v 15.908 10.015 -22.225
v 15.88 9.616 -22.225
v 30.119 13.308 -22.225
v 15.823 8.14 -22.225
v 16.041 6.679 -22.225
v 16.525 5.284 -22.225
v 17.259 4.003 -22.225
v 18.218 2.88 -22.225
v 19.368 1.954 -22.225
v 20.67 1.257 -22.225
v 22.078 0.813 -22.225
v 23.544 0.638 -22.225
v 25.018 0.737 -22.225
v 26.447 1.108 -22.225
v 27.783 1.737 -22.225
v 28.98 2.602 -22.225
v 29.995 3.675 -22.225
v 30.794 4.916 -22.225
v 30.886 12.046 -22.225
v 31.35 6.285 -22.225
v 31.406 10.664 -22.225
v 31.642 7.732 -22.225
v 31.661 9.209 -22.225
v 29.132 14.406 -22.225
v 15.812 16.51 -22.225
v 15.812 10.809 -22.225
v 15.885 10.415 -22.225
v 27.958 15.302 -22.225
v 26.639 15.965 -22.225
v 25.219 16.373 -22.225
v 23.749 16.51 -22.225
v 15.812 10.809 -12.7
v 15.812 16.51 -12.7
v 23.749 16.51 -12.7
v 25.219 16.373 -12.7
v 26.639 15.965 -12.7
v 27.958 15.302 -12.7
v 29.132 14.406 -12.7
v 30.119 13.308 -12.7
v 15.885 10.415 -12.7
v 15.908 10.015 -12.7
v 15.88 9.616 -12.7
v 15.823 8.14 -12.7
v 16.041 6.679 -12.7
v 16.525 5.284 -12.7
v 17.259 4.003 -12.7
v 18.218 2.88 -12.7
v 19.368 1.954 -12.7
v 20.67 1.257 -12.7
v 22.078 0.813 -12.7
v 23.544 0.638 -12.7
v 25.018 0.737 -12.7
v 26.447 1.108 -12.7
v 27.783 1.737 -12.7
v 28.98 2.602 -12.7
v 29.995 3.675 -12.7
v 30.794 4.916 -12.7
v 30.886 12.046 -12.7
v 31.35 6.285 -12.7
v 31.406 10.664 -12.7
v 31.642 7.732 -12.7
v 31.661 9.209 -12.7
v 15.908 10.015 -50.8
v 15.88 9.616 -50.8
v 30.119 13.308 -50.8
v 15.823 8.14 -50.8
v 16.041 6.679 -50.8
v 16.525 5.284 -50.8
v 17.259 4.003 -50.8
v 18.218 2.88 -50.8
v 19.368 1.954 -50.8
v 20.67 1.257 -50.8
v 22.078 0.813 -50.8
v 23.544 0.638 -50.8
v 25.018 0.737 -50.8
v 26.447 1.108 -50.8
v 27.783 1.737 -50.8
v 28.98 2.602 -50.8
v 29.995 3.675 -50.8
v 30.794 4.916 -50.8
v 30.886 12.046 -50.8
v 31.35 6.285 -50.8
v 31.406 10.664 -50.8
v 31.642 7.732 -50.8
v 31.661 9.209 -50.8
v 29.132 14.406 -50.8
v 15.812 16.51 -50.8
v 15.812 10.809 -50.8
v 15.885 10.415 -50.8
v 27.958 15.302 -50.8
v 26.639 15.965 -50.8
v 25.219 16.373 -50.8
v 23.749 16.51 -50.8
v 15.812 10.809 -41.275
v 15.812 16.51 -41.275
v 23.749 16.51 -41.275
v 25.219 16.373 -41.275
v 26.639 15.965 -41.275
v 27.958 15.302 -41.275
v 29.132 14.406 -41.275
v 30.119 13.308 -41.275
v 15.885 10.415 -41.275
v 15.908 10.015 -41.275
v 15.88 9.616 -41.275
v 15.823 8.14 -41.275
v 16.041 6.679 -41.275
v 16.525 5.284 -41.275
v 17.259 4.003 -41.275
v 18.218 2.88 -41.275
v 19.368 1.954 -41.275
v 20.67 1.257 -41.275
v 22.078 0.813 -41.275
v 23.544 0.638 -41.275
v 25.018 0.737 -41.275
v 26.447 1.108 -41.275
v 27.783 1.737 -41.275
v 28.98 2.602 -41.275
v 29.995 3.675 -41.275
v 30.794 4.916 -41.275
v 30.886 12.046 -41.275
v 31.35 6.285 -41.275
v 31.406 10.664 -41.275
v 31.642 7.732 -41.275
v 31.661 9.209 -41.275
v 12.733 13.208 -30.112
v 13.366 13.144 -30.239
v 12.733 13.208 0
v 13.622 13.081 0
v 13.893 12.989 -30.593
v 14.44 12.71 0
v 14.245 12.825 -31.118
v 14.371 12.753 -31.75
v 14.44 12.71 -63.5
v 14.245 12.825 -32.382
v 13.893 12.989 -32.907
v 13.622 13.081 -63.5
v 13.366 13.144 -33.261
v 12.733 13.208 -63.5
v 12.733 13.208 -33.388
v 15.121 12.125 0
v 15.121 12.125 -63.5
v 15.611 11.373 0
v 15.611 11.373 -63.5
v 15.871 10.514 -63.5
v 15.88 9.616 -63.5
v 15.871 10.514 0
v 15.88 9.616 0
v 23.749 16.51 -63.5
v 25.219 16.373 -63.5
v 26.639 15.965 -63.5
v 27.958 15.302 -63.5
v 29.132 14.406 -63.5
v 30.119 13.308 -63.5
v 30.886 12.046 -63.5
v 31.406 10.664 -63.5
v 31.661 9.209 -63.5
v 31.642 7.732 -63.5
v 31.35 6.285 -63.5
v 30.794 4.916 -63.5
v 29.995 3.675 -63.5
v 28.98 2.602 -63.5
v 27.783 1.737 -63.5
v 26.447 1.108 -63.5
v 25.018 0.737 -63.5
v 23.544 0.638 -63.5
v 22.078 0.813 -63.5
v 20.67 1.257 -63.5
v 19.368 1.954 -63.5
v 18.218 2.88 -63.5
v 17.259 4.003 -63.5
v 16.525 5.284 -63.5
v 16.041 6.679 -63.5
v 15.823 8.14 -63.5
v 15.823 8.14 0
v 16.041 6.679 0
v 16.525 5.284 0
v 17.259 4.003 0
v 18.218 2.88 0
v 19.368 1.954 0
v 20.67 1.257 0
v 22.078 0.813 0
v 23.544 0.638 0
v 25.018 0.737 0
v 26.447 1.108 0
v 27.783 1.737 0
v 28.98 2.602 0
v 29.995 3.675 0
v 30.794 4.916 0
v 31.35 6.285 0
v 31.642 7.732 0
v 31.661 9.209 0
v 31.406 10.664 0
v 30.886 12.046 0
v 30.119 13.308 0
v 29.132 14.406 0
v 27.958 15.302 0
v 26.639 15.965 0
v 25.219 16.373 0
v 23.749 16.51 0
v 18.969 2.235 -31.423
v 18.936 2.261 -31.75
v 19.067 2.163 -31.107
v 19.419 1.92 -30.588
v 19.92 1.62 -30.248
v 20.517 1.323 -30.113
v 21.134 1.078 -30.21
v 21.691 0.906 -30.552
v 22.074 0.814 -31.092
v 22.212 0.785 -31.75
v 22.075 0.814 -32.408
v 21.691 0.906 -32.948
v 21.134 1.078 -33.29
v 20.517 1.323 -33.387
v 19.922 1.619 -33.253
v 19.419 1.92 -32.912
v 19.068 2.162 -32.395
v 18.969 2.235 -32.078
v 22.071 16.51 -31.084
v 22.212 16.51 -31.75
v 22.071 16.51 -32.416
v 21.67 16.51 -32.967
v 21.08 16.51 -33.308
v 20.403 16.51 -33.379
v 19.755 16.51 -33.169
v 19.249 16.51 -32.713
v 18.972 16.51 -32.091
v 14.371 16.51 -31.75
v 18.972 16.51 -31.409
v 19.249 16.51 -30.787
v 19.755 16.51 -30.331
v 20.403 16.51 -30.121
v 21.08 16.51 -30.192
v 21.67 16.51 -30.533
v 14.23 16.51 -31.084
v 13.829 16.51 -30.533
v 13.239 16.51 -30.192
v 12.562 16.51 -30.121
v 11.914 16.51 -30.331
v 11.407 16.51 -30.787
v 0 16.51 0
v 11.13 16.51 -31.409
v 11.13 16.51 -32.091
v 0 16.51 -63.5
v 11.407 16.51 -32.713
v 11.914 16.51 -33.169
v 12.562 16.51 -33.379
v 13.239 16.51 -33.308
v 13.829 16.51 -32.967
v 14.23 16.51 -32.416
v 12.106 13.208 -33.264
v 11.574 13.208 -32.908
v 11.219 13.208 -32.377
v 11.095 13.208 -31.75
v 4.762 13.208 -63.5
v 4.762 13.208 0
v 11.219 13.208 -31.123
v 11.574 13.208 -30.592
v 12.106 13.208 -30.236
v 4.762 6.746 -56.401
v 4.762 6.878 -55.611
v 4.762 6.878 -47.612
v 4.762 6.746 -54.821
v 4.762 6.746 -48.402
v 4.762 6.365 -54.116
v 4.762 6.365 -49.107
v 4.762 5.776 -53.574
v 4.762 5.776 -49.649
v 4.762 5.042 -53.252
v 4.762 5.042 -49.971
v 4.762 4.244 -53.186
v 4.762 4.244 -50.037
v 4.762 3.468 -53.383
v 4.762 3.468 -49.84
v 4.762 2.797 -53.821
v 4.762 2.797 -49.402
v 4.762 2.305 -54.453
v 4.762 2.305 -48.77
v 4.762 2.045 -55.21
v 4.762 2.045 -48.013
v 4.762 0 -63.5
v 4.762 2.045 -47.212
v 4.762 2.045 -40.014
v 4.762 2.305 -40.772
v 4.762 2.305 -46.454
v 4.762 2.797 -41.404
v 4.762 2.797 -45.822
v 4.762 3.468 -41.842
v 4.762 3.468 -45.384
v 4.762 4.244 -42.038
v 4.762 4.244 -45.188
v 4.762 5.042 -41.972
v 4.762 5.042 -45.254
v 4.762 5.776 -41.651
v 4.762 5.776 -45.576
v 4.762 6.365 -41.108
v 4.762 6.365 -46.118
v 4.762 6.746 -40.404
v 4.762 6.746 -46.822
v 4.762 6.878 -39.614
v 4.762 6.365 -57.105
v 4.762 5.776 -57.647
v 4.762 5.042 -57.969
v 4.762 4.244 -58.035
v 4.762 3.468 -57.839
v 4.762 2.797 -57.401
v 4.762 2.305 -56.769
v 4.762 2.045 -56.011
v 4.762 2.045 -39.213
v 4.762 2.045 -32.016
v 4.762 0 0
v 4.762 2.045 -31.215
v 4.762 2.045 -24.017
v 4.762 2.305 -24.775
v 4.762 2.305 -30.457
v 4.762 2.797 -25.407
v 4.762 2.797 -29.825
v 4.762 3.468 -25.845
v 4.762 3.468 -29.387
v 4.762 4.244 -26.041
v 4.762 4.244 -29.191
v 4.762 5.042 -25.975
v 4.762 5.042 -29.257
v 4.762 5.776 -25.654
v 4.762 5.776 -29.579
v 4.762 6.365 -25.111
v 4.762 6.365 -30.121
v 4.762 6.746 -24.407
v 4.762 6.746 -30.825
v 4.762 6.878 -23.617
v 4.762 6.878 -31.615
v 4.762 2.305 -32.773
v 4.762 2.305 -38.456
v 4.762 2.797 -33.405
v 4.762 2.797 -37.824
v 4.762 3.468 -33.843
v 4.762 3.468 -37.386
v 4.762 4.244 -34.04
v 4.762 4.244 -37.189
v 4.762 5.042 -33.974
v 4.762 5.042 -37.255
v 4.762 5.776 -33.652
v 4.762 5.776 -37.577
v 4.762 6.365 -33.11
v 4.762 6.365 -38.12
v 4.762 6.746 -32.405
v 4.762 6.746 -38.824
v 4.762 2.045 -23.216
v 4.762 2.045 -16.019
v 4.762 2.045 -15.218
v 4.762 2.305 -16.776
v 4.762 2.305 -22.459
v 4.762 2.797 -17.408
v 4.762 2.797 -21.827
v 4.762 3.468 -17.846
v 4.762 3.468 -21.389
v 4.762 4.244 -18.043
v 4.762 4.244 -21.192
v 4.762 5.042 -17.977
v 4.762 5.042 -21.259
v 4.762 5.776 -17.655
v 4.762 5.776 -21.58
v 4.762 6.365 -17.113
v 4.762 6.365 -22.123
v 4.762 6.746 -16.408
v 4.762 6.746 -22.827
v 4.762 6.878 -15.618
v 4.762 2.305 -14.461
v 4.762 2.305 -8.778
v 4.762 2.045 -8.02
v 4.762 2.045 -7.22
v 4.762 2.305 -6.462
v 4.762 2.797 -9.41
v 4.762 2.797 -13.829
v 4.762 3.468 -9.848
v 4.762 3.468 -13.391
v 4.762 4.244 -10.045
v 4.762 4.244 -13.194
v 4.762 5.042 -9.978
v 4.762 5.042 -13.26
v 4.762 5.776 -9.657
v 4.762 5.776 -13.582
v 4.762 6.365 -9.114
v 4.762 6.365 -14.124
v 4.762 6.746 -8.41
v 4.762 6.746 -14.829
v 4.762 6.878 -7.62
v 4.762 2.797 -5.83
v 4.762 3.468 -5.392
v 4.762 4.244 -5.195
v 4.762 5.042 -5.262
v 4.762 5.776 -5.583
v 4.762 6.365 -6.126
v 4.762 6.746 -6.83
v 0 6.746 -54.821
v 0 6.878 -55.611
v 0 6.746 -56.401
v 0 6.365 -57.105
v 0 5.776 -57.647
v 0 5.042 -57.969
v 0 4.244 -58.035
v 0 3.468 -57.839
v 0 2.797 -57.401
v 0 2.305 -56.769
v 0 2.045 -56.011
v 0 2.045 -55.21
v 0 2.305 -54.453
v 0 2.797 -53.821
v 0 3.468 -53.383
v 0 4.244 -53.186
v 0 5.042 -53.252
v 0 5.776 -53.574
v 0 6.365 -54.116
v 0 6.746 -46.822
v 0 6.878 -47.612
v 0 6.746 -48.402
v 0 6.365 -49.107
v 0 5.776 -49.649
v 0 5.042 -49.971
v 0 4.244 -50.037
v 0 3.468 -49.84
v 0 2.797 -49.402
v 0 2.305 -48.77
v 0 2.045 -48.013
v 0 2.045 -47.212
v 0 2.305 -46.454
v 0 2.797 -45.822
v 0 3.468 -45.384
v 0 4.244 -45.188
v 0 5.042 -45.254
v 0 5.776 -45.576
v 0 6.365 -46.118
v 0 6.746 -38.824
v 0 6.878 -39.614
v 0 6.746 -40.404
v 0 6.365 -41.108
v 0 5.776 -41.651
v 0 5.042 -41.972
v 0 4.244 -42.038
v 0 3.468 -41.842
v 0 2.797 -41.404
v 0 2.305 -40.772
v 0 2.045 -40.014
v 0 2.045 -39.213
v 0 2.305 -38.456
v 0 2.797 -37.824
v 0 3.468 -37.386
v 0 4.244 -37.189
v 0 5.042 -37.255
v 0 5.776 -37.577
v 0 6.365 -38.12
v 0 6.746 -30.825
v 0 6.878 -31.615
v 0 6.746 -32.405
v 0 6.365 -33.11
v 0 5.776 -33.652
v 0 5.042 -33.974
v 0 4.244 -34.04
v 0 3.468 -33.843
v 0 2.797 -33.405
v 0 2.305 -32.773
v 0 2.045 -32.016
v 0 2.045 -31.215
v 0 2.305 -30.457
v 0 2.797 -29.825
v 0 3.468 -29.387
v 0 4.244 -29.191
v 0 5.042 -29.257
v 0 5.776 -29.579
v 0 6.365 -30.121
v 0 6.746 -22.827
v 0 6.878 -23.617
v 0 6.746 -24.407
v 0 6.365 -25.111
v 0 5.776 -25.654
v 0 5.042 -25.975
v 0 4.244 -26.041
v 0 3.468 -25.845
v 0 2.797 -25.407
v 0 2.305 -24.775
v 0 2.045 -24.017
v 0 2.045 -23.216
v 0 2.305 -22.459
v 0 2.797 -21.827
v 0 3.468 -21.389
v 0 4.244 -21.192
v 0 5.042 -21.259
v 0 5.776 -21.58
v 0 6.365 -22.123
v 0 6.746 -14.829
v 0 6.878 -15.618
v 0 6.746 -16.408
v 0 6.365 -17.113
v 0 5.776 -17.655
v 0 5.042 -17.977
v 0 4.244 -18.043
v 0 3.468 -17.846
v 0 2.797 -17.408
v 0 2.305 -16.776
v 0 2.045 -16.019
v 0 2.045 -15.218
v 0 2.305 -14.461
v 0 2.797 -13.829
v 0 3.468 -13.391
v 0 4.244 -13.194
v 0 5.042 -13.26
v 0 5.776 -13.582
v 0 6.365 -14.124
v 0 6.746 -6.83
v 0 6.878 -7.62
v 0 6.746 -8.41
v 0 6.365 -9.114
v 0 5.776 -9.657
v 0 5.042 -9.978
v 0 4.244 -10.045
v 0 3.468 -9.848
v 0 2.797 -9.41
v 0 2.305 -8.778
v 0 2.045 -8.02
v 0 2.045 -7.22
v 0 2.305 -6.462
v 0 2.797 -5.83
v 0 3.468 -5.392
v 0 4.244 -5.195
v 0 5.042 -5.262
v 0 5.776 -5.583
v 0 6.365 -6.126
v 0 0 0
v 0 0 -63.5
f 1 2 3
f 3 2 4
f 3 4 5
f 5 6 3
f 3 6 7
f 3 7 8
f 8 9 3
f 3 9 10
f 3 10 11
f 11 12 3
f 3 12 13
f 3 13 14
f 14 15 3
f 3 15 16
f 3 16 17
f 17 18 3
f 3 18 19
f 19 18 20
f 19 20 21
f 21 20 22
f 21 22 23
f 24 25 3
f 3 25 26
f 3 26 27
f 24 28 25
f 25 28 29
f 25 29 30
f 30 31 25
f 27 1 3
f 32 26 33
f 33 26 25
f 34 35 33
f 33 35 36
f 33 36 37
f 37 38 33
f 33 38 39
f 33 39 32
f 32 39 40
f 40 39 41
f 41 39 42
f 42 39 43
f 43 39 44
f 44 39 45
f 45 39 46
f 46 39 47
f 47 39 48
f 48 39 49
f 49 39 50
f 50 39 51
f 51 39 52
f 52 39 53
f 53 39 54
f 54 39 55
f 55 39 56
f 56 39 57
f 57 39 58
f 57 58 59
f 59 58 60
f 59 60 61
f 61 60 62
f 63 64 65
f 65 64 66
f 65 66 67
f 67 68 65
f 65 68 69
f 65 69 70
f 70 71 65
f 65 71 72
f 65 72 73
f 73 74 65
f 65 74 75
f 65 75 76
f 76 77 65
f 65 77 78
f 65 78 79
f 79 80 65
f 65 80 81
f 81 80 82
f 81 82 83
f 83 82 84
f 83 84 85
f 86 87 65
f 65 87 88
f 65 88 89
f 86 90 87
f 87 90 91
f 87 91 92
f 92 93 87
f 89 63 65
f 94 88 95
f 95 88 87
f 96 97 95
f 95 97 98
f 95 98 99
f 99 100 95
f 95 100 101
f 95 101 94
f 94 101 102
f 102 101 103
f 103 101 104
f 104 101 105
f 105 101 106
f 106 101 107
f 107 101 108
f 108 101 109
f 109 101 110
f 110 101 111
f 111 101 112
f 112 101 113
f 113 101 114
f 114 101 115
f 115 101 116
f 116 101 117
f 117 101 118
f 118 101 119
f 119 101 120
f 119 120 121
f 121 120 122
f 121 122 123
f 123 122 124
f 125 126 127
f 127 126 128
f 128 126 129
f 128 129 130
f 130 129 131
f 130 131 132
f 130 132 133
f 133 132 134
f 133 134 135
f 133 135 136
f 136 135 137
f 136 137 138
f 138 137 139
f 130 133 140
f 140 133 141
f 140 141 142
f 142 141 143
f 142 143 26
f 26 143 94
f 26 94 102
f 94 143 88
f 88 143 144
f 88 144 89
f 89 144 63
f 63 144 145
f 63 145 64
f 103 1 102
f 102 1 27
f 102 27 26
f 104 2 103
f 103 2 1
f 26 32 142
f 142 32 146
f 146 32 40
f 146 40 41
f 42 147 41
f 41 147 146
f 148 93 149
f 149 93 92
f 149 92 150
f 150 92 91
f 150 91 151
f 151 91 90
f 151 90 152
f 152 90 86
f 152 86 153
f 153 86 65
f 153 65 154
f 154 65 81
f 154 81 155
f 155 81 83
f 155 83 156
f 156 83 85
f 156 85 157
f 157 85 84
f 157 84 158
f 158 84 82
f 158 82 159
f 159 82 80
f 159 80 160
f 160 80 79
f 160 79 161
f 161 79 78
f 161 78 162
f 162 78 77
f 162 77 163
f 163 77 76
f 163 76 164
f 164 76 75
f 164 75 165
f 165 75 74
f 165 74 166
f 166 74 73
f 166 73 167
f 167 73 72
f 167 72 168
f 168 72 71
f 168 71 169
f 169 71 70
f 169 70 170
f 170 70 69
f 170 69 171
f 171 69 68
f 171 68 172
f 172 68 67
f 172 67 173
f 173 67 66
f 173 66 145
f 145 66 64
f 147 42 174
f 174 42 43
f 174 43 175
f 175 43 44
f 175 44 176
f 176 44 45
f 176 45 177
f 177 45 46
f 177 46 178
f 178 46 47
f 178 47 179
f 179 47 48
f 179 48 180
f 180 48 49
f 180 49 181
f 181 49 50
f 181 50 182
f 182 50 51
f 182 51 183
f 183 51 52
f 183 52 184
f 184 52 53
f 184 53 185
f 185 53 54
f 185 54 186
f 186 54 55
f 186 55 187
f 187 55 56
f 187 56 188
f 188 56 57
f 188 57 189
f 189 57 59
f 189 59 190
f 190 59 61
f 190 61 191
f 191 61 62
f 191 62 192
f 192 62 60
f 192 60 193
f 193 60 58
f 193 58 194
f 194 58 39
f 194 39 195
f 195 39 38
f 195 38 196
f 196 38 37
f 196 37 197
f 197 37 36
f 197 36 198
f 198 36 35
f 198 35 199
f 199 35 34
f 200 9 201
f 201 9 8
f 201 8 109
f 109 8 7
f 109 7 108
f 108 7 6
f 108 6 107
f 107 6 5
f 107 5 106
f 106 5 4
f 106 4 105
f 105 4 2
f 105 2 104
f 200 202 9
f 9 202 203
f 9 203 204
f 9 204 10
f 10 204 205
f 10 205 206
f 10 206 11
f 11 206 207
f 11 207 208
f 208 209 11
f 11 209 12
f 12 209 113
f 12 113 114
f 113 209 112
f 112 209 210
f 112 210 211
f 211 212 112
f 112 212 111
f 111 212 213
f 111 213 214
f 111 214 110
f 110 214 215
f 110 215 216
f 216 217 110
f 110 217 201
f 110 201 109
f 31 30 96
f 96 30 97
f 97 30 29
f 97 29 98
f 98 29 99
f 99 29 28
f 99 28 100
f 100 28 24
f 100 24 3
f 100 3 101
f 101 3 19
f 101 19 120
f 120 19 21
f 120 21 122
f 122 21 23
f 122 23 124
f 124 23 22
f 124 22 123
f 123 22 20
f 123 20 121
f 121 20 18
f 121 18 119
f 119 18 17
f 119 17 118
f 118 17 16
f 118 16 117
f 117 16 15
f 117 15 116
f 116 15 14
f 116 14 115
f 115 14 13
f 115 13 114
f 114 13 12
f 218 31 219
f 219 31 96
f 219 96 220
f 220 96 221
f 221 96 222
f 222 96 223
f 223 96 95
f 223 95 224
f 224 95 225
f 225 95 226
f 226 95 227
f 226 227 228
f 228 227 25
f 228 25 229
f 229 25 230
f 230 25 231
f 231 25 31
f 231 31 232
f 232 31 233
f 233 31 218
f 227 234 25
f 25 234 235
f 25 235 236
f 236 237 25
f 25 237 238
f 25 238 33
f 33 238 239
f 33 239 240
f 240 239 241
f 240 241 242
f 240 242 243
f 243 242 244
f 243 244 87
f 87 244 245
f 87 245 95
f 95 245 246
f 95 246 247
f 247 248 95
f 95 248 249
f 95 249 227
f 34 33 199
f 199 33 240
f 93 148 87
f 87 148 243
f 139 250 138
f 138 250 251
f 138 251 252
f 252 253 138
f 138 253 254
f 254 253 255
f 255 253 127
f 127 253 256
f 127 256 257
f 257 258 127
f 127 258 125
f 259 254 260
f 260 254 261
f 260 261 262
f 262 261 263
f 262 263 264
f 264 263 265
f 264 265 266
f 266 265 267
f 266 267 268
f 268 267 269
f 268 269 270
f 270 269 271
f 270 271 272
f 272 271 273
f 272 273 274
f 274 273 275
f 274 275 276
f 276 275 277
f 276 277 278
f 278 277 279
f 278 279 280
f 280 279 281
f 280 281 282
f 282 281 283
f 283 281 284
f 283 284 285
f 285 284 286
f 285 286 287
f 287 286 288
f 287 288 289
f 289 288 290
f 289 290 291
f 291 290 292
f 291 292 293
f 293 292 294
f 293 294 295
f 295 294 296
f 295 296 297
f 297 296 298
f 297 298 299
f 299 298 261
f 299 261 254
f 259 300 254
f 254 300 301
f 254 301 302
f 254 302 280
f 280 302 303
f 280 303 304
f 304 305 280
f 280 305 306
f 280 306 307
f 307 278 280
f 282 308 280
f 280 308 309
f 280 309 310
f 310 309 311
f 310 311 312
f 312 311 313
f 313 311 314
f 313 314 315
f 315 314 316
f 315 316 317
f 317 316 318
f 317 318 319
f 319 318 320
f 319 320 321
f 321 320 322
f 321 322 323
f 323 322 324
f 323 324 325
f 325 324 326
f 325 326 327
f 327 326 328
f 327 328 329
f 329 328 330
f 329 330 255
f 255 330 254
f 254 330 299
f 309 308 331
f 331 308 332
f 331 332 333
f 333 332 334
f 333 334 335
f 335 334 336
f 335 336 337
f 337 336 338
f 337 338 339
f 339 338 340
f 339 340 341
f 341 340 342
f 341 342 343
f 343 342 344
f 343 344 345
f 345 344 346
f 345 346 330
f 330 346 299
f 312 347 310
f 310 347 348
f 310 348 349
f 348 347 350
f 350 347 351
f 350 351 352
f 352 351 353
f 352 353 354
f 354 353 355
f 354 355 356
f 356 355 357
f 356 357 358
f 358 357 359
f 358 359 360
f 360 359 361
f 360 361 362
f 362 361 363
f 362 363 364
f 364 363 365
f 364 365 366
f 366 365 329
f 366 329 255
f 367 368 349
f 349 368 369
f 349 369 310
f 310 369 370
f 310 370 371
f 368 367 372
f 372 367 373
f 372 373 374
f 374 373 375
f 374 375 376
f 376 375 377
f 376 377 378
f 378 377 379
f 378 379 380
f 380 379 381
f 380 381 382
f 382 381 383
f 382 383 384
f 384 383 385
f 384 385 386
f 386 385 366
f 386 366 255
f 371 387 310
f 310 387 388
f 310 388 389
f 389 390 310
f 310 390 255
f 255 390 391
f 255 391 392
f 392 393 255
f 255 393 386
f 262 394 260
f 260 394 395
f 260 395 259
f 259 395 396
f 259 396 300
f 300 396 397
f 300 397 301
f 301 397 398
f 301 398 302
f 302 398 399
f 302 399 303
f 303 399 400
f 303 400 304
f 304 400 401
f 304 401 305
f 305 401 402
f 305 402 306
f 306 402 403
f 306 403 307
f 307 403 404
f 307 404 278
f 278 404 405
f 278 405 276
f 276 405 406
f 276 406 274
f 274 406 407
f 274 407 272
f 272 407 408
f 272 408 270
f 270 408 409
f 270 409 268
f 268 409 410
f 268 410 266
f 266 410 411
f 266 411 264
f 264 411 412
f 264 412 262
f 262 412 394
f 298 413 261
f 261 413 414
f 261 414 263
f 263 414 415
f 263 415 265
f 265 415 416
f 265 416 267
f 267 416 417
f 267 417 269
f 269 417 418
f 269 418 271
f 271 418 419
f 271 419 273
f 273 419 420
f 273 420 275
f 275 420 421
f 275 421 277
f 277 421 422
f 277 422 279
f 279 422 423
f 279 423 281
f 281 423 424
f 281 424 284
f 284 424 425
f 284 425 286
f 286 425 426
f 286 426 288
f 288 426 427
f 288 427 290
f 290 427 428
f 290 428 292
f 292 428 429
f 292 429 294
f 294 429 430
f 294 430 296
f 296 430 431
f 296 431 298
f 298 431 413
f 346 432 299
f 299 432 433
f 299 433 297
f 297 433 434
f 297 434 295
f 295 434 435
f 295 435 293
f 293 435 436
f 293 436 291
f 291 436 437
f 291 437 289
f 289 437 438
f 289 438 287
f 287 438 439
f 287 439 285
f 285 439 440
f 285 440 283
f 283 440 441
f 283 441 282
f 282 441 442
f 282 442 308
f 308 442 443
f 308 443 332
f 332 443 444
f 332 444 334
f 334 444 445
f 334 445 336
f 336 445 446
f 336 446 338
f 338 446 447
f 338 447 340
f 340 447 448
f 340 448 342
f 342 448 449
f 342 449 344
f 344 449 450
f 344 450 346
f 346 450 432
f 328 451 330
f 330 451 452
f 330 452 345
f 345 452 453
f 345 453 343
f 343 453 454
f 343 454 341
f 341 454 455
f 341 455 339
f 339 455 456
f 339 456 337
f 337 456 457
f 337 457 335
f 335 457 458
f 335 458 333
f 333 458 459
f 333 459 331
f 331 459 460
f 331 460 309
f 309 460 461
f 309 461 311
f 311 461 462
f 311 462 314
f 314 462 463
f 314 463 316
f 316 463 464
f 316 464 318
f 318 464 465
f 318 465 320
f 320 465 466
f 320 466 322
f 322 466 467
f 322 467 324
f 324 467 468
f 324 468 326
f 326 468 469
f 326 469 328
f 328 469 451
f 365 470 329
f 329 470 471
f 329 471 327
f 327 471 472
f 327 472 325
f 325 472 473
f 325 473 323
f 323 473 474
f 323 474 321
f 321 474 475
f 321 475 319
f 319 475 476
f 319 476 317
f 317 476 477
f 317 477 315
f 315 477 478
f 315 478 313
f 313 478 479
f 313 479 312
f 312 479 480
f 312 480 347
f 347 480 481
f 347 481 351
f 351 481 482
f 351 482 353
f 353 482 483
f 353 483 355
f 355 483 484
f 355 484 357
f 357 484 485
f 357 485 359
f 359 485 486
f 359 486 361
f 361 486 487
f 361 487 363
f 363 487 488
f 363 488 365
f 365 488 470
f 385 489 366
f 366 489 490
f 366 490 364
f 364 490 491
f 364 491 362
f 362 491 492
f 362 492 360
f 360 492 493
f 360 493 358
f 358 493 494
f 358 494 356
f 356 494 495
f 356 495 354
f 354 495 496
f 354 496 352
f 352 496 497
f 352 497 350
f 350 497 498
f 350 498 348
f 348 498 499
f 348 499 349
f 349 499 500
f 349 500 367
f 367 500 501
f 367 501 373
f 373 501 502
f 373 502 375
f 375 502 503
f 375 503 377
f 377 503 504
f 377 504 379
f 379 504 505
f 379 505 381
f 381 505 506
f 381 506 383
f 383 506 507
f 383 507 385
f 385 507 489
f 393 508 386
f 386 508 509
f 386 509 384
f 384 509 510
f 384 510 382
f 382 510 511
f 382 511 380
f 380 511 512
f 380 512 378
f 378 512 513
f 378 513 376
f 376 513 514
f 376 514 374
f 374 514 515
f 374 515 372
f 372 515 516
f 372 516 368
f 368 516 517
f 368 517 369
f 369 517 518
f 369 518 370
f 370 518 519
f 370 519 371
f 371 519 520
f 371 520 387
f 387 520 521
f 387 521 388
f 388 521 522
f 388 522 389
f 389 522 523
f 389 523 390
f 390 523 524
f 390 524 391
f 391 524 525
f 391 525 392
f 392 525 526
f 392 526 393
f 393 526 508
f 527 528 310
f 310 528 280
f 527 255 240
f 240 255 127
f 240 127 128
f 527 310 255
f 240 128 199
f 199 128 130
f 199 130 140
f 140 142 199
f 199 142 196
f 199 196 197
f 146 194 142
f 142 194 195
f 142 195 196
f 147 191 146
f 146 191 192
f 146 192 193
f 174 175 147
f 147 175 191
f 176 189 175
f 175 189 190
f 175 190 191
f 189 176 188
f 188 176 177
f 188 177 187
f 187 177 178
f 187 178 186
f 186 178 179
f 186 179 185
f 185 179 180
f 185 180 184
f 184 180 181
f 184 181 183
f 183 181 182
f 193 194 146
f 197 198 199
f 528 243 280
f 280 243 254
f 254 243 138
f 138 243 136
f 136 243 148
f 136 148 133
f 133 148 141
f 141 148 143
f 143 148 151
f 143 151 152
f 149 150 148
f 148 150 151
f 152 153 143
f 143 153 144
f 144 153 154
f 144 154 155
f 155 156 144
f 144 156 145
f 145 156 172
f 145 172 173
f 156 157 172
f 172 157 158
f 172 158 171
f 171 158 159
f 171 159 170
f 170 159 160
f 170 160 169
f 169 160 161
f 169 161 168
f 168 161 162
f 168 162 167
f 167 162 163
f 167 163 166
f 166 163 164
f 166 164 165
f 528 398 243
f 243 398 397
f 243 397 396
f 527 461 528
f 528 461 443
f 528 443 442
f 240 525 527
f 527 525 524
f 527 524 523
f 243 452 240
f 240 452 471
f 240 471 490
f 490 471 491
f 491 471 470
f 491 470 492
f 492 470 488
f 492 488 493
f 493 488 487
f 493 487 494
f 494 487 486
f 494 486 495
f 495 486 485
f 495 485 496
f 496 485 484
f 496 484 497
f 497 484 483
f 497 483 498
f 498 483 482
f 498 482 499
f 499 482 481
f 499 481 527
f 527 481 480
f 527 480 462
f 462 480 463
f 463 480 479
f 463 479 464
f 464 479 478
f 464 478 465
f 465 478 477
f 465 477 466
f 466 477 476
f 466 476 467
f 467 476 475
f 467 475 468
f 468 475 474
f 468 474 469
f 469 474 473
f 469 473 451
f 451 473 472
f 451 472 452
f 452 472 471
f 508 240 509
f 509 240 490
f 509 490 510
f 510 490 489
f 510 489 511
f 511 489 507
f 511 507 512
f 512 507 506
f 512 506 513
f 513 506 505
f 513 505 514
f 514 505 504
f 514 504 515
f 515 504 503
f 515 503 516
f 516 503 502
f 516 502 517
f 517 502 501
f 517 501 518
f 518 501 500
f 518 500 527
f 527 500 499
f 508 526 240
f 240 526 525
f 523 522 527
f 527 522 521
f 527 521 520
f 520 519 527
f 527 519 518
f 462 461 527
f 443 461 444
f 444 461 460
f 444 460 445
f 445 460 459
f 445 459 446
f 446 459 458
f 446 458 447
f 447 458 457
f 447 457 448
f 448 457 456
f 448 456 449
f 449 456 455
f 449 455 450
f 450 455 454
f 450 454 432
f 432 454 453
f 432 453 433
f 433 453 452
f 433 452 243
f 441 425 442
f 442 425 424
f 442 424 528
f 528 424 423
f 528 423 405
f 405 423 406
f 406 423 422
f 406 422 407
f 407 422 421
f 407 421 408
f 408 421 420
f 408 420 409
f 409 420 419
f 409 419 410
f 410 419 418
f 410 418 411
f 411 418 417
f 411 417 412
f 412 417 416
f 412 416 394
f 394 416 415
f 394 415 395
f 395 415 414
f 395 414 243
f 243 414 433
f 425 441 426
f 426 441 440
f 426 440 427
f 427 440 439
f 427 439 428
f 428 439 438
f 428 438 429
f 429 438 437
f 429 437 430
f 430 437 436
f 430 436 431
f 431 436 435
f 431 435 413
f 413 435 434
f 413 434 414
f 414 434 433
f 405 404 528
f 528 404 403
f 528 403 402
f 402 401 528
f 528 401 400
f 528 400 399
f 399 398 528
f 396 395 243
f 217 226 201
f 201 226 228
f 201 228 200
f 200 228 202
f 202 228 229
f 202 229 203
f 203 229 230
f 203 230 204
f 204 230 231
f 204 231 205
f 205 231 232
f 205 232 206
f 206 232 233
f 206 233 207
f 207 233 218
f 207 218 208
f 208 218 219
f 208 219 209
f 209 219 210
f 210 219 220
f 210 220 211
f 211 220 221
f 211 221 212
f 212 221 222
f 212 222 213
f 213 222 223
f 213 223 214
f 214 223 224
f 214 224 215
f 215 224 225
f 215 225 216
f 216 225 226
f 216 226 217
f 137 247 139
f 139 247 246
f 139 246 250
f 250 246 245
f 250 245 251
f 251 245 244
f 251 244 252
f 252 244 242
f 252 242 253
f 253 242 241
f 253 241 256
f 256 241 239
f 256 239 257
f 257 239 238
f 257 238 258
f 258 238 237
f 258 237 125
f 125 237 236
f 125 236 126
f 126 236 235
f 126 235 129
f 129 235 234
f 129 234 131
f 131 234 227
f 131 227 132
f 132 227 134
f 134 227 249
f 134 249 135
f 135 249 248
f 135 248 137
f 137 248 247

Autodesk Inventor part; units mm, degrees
ref_plane "YZ Plane" through (0, 0, 0) normal (1, 0, 0) x (0, 1, 0)
ref_plane "XZ Plane" through (0, 0, 0) normal (0, 1, 0) x (-1, 0, 0)
ref_plane "XY Plane" through (0, 0, 0) normal (0, 0, 1) x (1, 0, 0)
sketch "Sketch1" plane through (0, 0, 0) normal (1, 0, 0) x (0, 1, 0)
  line L0 (0, 0) -> (16.51, 0)
  line L1 (16.51, 0) -> (16.51, -63.5)
  line L2 (16.51, -63.5) -> (0, -63.5)
  line L3 (0, -63.5) -> (0, 0)
  circle A0 centre (4.445, -7.62) radius 2.4329
  circle A1 centre (4.445, -15.6185) radius 2.4329
  circle A2 centre (4.445, -23.6169) radius 2.4329
  circle A3 centre (4.445, -31.6154) radius 2.4329
  circle A4 centre (4.445, -39.6138) radius 2.4329
  circle A5 centre (4.445, -47.6123) radius 2.4329
  circle A6 centre (4.445, -55.6108) radius 2.4329
  dimension "d0" = 63.5
  dimension "d1" = 16.51
  dimension "d6" = 7.9985
  dimension "d11" = 7.62
extrude "Extrusion1" add sketch "Sketch1" along normal blind 4.7625
sketch "Sketch2" plane through (4.7625, 0, 0) normal (1, 0, 0) x (0, 0, -1)
  line L0 (63.5, 16.51) -> (0, 16.51) projected
  line L1 (63.5, 0) -> (63.5, 16.51) projected
  line L2 (0, 16.51) -> (63.5, 16.51)
  line L3 (63.5, 16.51) -> (63.5, 13.208)
  line L4 (63.5, 13.208) -> (0, 13.208)
  line L5 (0, 13.208) -> (0, 16.51)
  point P0 (0, 0)
  dimension "d14" = 3.302
extrude "Extrusion2" add sketch "Sketch2" along normal blind 1.016
sketch "Sketch3" plane through (0, 0, 0) normal (0, 0, 1) x (1, 0, 0)
  line L0 (5.7785, 16.51) -> (5.7785, 13.208) projected
  arc A0 (15.8804, 9.6157) -> (23.749, 16.51) centre (23.749, 8.5725) ccw
  line L1 (0, 16.51) -> (0, 0) projected
  line L2 (5.7785, 16.51) -> (23.749, 16.51)
  line L3 (4.7625, 13.208) -> (5.7785, 13.208) projected
  line L4 (5.7785, 13.208) -> (12.7329, 13.208)
  arc A1 (15.8804, 9.6157) -> (12.7329, 13.208) centre (12.7329, 10.033) ccw
  point P0 (17.3057, 13.208)
  point P1 (9.5258, 13.208)
  dimension "d17" = 23.749
  dimension "d18" = 15.875
  dimension "d19" = 3.175
extrude "Extrusion3" add sketch "Sketch3" against normal blind 63.5
sketch "Sketch4" plane through (0, 16.51, 0) normal (0, 1, 0) x (1, 0, 0)
  line L0 (31.6865, 0) -> (31.6865, 63.5) projected
  line L1 (31.6865, 0) -> (31.6865, 83.2403)
  point P0 (0, 0)
ref_plane "Work Plane1" through (55.5625, 0, 0) normal (1, 0, 0) x (0, 0, -1)
sketch "Sketch6" plane through (0, 16.51, 0) normal (0, 1, 0) x (1, 0, 0)
  line L0 (31.6865, 0) -> (31.6865, 63.5) projected
  line L1 (15.8115, 50.8) -> (31.6865, 50.8)
  line L2 (31.6865, 50.8) -> (31.6865, 41.275)
  line L3 (31.6865, 41.275) -> (15.8115, 41.275)
  line L4 (15.8115, 41.275) -> (15.8115, 50.8)
  line L5 (31.6865, 63.5) -> (15.8115, 63.5) projected
  line L6 (15.8115, 22.225) -> (31.6865, 22.225)
  line L7 (31.6865, 22.225) -> (31.6865, 12.7)
  line L8 (31.6865, 12.7) -> (15.8115, 12.7)
  line L9 (15.8115, 12.7) -> (15.8115, 22.225)
  line L10 (15.8115, 0) -> (31.6865, 0) projected
  point P0 (0, 0)
  point P1 (15.8804, 63.5)
  point P2 (15.8804, 0)
  dimension "d26" = 9.525
  dimension "d27" = 12.7
  dimension "d28" = 9.525
  dimension "d29" = 12.7
  dimension "d32" = 15.875
  dimension "d33" = 15.875
extrude "Extrusion4" cut sketch "Sketch6" against normal through all
sketch "Sketch7" plane through (0, 16.51, 0) normal (0, 1, 0) x (1, 0, 0)
  circle A0 centre (20.574, 31.75) radius 1.6383
  line L0 (0, 0) -> (23.749, 0) projected
  line L1 (23.749, 22.225) -> (23.749, 41.275) projected
  line L2 (12.7329, 0) -> (12.7329, 63.5) projected
  circle A1 centre (12.7329, 31.75) radius 1.6383
  dimension "d34" = 3.2766
  dimension "d35" = 31.75
  dimension "d36" = 3.175
  dimension "d37" = 3.2766
extrude "Extrusion5" cut sketch "Sketch7" against normal through all
properties part number "knuckle plate hinge tall"
